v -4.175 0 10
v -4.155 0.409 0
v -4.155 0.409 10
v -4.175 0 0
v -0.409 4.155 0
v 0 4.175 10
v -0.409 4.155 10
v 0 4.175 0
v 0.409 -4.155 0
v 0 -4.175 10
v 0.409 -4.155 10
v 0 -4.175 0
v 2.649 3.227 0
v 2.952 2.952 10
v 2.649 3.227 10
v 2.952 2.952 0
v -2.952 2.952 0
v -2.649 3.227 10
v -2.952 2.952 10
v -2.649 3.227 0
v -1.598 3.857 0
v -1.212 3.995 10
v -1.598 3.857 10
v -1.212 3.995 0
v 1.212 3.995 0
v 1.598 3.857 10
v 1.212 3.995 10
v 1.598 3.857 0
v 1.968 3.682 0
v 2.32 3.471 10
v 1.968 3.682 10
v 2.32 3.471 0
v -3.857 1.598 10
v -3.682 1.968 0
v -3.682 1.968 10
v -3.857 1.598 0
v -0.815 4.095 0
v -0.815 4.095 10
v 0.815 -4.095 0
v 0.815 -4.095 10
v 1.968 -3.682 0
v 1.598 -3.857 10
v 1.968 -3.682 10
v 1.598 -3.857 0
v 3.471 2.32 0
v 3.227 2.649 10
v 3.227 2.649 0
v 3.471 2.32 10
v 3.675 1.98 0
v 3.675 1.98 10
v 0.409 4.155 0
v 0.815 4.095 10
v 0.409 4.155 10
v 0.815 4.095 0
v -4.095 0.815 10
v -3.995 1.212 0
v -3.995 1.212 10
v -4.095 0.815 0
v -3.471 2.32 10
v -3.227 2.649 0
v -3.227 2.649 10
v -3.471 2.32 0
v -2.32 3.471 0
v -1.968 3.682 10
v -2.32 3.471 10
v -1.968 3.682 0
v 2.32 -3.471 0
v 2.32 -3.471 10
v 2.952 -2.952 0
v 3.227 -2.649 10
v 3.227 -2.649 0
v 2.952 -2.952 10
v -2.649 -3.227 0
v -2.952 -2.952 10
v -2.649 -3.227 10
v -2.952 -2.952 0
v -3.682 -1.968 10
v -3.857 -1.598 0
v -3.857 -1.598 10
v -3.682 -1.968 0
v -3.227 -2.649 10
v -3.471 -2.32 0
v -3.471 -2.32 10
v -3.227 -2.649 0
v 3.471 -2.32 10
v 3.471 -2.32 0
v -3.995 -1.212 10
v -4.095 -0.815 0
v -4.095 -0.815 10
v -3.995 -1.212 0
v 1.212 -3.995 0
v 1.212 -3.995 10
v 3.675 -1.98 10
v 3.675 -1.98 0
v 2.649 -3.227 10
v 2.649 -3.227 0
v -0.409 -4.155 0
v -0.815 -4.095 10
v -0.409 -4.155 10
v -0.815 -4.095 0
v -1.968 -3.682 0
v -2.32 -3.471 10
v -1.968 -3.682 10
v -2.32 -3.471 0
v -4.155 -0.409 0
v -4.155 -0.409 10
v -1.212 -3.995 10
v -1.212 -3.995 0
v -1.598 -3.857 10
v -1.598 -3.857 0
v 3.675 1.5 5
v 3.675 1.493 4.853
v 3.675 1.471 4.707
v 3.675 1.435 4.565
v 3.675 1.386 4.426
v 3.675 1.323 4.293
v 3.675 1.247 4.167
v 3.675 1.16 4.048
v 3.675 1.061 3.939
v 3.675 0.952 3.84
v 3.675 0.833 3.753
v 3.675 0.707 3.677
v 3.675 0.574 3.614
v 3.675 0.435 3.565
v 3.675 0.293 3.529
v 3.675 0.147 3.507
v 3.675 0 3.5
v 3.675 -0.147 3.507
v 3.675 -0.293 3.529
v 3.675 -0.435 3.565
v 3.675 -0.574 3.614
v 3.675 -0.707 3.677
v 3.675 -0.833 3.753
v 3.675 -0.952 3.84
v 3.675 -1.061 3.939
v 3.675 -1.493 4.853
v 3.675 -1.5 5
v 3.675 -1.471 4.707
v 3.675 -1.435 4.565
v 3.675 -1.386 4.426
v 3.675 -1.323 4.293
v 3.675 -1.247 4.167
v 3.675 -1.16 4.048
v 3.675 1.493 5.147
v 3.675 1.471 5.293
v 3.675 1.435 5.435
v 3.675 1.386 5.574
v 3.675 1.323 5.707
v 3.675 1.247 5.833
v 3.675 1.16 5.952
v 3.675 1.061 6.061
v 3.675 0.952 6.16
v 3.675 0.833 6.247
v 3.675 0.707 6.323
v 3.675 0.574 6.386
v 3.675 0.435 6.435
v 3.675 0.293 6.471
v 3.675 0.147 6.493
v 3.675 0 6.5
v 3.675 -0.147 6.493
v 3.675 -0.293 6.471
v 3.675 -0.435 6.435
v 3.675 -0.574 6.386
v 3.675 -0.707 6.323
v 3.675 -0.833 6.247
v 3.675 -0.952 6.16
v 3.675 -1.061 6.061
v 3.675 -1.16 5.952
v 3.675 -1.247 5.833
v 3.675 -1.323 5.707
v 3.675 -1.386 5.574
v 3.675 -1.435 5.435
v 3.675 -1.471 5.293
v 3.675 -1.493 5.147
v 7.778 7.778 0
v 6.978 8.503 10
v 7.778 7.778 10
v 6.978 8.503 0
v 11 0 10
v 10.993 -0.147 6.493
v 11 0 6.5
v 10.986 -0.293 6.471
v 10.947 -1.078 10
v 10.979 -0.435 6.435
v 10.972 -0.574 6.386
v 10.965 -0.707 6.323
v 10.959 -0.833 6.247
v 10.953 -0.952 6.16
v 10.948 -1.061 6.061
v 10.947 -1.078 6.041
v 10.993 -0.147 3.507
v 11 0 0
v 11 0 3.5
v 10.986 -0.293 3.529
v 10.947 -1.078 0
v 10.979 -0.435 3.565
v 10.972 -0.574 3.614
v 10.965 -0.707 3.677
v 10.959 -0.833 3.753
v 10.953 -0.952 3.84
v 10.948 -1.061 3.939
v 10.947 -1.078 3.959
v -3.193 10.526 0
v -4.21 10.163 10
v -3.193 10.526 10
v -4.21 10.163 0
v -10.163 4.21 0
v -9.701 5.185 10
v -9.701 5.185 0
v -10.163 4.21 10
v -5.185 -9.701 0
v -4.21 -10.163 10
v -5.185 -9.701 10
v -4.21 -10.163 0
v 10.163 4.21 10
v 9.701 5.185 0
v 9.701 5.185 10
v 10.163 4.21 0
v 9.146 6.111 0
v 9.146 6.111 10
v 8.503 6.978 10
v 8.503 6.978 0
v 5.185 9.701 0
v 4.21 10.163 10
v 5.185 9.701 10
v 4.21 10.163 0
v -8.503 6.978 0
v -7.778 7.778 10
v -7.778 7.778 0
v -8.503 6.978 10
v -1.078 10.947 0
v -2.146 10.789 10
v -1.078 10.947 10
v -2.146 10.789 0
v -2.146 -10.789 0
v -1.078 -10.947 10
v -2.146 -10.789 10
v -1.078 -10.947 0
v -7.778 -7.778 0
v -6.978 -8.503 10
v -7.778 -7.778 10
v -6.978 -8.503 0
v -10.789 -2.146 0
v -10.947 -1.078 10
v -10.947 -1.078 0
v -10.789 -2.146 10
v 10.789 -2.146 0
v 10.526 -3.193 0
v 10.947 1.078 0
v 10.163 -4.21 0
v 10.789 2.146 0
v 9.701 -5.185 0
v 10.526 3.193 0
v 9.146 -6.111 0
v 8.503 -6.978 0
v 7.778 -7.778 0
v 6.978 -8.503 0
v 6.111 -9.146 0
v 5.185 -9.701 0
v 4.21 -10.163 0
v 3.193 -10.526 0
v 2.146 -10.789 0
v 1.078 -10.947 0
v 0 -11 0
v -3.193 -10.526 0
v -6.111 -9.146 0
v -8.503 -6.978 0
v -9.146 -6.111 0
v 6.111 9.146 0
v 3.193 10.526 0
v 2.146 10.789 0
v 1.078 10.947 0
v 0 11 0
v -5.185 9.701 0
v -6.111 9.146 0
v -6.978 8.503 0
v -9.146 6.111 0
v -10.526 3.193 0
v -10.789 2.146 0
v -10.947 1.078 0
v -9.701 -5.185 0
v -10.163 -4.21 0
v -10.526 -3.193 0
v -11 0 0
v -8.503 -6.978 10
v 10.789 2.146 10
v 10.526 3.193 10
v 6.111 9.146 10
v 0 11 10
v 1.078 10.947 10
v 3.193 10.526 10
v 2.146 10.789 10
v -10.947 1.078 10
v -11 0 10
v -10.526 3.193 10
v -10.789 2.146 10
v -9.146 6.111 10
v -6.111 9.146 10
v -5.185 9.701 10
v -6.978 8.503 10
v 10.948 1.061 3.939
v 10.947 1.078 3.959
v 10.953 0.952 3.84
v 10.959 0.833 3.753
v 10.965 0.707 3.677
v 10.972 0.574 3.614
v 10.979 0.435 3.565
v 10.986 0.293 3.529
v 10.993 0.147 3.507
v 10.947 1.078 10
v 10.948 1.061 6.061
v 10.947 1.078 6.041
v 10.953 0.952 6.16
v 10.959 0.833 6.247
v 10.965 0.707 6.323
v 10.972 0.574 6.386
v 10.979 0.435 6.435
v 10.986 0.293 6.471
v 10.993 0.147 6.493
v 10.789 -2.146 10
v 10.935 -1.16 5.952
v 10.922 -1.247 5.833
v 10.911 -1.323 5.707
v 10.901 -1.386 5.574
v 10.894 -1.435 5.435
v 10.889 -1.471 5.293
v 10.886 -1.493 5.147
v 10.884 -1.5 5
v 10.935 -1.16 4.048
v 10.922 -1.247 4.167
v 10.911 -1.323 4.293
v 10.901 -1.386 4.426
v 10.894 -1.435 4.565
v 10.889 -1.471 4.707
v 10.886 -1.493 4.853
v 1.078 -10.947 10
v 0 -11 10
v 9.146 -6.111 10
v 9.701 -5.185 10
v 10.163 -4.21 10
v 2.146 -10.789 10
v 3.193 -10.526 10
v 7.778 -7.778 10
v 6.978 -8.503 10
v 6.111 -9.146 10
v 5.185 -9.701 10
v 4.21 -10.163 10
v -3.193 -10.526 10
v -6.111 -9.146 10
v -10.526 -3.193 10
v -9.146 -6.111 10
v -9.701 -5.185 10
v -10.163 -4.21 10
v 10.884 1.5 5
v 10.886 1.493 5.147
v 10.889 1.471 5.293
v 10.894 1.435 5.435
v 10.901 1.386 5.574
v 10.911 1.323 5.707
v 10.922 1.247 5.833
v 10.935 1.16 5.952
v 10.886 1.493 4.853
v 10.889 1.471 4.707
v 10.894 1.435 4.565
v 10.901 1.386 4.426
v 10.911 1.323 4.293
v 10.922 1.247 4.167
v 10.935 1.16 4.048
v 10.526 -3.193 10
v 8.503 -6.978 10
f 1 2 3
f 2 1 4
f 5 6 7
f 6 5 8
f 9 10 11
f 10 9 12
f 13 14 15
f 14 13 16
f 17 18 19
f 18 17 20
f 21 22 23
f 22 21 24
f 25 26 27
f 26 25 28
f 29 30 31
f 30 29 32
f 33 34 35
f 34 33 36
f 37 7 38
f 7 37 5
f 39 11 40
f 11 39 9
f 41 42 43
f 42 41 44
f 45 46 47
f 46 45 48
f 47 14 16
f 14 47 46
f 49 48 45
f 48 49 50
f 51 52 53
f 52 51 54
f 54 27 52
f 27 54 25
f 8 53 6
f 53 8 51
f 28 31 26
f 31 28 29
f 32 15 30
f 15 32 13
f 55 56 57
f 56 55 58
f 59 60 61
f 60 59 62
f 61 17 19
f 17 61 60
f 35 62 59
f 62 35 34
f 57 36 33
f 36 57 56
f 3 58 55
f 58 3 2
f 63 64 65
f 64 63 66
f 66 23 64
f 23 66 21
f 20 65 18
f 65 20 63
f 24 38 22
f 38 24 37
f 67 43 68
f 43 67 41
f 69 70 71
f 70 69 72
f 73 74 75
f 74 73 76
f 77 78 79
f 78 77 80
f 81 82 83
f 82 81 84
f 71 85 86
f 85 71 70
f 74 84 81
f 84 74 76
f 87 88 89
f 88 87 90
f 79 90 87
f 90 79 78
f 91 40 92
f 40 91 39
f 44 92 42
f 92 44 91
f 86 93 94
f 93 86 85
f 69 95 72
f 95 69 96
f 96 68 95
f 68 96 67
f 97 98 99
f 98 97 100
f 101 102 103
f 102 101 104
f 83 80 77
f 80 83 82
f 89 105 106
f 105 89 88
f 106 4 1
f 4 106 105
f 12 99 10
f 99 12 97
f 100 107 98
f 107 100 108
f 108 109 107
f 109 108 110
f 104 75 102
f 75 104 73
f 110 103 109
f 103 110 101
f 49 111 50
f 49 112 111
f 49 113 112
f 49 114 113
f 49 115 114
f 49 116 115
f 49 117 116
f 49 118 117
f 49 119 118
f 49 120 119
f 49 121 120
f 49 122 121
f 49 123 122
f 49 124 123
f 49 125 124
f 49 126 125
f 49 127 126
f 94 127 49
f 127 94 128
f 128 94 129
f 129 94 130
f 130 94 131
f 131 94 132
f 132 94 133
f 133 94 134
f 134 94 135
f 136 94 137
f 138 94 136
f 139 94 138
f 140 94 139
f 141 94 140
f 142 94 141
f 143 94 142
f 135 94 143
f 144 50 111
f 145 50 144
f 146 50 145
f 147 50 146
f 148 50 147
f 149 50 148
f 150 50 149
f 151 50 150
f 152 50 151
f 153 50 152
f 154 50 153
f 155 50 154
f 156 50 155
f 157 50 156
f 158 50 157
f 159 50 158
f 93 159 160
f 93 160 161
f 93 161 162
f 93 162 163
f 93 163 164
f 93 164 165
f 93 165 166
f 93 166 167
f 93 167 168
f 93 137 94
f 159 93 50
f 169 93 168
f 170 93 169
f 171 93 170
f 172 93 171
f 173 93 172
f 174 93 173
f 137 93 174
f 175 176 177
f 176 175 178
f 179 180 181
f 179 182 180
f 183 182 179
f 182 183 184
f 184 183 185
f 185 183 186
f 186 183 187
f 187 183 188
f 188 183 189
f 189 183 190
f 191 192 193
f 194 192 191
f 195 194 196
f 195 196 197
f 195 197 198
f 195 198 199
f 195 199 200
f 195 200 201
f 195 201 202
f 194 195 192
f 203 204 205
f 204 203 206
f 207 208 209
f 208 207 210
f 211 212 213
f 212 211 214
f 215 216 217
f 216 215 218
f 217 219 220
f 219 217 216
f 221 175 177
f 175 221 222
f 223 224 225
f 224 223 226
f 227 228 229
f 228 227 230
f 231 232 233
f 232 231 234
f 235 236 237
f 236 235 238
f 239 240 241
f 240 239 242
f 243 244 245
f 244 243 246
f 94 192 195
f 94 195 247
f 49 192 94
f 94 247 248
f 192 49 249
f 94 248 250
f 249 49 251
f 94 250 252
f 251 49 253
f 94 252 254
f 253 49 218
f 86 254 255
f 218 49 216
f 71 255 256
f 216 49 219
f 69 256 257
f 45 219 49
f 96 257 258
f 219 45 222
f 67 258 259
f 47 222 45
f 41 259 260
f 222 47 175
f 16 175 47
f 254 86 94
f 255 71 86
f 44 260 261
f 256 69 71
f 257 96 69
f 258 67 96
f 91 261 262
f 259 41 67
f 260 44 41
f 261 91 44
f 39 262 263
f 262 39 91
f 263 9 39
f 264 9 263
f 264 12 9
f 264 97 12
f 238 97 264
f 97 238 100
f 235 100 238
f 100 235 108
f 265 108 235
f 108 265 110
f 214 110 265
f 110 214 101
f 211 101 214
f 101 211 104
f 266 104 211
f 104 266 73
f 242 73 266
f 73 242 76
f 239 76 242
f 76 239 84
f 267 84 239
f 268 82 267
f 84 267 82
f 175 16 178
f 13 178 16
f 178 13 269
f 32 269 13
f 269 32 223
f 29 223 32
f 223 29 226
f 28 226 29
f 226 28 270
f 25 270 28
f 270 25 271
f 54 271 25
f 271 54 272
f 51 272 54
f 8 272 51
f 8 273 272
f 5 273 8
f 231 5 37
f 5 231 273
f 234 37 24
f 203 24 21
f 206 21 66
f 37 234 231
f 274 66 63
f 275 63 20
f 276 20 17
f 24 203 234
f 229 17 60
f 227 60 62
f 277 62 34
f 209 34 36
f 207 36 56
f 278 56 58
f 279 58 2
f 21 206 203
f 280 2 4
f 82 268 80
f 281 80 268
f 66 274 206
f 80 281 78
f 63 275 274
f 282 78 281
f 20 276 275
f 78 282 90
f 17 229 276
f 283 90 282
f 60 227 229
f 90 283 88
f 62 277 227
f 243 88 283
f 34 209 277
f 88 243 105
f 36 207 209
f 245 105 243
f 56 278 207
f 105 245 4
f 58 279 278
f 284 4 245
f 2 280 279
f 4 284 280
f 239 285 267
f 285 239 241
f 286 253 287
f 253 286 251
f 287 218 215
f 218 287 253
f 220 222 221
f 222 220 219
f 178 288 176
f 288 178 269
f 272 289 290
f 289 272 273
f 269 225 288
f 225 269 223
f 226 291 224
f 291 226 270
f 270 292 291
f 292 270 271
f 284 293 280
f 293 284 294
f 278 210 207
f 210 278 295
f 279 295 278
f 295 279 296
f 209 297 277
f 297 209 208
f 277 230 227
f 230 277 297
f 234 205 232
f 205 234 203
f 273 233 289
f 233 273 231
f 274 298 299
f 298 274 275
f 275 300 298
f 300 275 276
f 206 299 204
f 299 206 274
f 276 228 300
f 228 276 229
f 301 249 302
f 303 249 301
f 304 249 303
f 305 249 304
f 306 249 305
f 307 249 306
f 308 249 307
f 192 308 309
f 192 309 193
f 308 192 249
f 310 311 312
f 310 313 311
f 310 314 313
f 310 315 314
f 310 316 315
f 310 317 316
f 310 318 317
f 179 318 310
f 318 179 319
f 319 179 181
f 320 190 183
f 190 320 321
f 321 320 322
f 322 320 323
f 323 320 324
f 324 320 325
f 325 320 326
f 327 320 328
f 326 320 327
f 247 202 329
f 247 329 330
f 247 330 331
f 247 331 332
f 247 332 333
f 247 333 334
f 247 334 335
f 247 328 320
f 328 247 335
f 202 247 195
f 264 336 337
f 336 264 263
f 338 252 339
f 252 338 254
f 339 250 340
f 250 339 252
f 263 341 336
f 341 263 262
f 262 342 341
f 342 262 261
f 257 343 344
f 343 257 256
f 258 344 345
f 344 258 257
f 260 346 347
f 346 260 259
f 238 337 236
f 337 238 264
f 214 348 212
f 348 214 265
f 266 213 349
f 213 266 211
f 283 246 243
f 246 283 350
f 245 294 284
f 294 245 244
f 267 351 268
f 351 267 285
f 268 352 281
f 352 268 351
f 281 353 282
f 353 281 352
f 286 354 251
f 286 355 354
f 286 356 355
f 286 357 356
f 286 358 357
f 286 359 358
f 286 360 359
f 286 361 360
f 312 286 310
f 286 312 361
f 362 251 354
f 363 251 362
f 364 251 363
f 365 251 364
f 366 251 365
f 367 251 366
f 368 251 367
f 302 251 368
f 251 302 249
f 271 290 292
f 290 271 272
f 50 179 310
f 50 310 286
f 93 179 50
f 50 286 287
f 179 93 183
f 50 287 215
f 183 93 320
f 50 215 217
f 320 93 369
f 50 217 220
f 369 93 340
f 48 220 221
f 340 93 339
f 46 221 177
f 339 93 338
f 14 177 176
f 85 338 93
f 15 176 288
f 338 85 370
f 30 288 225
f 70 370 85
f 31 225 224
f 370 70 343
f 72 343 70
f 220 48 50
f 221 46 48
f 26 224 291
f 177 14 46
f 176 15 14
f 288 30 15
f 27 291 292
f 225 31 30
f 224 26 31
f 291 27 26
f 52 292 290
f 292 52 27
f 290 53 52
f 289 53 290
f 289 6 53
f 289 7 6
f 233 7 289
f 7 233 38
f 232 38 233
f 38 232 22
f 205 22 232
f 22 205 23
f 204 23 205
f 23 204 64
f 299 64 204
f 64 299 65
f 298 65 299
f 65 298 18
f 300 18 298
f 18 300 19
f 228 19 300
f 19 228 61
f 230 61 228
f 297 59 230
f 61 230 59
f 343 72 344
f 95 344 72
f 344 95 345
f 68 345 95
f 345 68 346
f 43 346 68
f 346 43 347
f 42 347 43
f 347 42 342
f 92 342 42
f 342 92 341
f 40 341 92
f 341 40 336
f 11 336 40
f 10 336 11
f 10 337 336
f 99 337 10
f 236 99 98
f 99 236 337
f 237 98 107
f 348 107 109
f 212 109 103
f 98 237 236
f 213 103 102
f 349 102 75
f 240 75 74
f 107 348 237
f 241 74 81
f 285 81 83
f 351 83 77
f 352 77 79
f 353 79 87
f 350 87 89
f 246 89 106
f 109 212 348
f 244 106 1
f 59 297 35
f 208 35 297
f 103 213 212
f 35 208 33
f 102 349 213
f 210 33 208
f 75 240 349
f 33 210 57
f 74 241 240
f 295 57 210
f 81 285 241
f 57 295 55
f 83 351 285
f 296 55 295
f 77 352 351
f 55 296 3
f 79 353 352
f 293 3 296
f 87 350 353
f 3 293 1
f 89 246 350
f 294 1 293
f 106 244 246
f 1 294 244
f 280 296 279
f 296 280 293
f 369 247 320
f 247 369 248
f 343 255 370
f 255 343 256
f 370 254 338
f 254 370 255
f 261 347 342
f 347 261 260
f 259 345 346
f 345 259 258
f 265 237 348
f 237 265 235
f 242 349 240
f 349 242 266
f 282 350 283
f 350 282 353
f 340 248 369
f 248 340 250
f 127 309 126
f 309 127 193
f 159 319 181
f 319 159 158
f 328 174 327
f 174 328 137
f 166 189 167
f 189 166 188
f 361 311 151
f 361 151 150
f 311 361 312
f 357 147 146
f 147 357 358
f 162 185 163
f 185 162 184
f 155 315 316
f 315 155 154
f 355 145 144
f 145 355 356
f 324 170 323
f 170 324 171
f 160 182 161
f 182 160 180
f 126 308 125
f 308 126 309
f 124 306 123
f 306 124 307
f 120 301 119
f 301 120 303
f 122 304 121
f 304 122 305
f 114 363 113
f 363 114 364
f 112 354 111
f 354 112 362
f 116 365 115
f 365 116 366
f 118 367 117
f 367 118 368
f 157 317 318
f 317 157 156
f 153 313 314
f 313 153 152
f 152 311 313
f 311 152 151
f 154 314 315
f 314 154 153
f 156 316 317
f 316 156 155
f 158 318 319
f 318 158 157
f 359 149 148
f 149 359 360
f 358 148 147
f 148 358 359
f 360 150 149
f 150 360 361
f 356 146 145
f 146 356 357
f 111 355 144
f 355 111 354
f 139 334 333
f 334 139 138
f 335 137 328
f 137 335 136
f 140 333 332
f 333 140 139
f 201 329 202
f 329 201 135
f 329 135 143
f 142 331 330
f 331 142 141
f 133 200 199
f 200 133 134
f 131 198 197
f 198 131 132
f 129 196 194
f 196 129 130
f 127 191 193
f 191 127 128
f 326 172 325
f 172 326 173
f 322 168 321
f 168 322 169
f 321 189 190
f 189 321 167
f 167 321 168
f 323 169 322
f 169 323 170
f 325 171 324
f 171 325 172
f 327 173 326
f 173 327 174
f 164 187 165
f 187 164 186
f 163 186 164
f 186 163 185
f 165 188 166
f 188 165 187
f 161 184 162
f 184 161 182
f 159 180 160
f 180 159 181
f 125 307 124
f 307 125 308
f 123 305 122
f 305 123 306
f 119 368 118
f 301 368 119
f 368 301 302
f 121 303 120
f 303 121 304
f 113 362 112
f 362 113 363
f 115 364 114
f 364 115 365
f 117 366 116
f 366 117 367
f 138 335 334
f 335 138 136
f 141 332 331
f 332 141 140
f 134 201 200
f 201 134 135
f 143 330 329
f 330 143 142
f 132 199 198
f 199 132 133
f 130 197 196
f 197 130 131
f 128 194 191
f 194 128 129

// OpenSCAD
// file: parameters.scad
// =============================================================================
// Gen-CE — nightly 2026-10-14 (physics_scorer, honest magpylib watts)
// Wire-saver stator for the Gen-CD rotors: only 3.9 mm of copper (≈9 layers), magnet faces ≈6.5 mm apart, peak Bz ≈0.70 T. Uses ≈300 m of wire (≈80 m less than Gen-CD) and still clears Gen-BX; shares every rotor part, the steel, the frame rods and the bearing bridges with Gen-CD, so the two stators swap on the same machine.
// Clocking 0 deg (magnets N facing S) + D-flat keyed bore + index notch + flip-symmetric hole map.
// Windable 2-piece bobbin; turns = physics_scorer turns_fit; copper only between flanges.
// Steel back-iron: 2× Ø198 × 4.76 mm (3/16") mild-steel discs (steel_backiron_disc.dxf); magnets sit ON the steel
// (through-pockets) -> score with --back-iron. Night 2026-10-14.
// =============================================================================
topology            = "dual_rotor";

// --- Wire / winding (physics_scorer winding-fit) -------------------------------
wire_awg            = 26;
wire_od             = 0.45;     // insulated OD mm (bare 0.405)
fill_realistic      = 0.65;     // insulated-wire area / window (DENSE layered wind with a jig; scorer cap 0.65)
turns               = 288;       // = physics_scorer turns_fit (do NOT raise)
coil_former_type    = "bobbin";
coil_core_inset     = 18.10;     // radial copper build: hub = copper boundary inset by this
wind_build_axial    = 0.0;      // nothing proud of the flanges
wind_build_radial   = 0.0;

// --- Bobbin (base + lid) ---------------------------------------------------------
coil_id_r           = 64.00;    // copper boundary sector
coil_od_r           = 104.00;
span_deg            = 26.87;    // = pitch - 2*asin((wall+0.85)/coil_id_r) -> >=1.2 mm stator web
former_web          = 3.90;     // copper height between flanges (TALL copper: steel keeps Bz up)
flange_t            = 0.80;     // >= 0.8 mm FDM wall rule (tall winds push on the flanges)
wall                = 0.80;     // flange lip beyond copper
former_bare_h       = former_web + 2 * flange_t;
coil_envelope_h     = former_bare_h + 2 * wind_build_axial;
tab_w               = 7.0;
tab_len             = 7.0;
tab_h               = former_bare_h / 2;
pin_d               = 1.9;      // 1.75 mm filament locating pin
coil_mount_r        = coil_od_r + 0.2 + 4.0;
lead_y              = 1.6;
lead_slot_w         = 0.9;
lead_groove_d       = 0.6;

// --- Gap -------------------------------------------------------------------------
run_clear           = 0.50;     // rotor face -> flange
gap_spacer_h        = run_clear + wind_build_axial;
m2m                 = coil_envelope_h + 2 * run_clear;   // rotor face to rotor face (= gap_sleeve length)

// --- Stator ----------------------------------------------------------------------
coil_stations       = 12;
bay_clear           = 0.35;     // 0.35 mm: bobbin BASES print IN PLACE inside the stator bays (print-in-place gap), then pop out
stator_thick        = former_bare_h;                        // bobbins flush both faces
stator_od           = 229.0;
shaft_clear_stator  = 14.0;     // stator is static; gap sleeve OD 12 spins inside
stator_ir           = 58.85;    // ANNULAR stator: open centre (nested one-plate pack); inner rim 4.0 mm

// --- Rotor(s) --------------------------------------------------------------------
magnet_Br           = 1.43;     // N52
magnet_d_large      = 20.0;
magnet_h_large      = 5.0;      // one O20x5 per pocket
magnet_h_small      = 5.0;      // unused: no O5 pockets in this kit
halbach_magnetisation = "none";  // NO O5 assist magnets in this kit (scan: they lower the 4-pole score)
rotor_b_same_axis   = true;     // same-index magnets share one axis: N faces S across the gap
large_pocket_d      = 20.3;
small_pocket_d      = 5.3;
pocket_h            = 5.00;     // THROUGH the carrier: magnet back face sits on the steel disc (FLUSH seat: carrier = magnet height, magnet face level with the rotor face)
large_n             = 8;
R_large             = 86.0;
small_r_list        = [];       // no O5 pockets
carrier_od          = 198.0;
ring_ir             = 72.85;    // RING rotor: PLA magnet ring r ring_ir..carrier_od/2 (steel disc = structural rotor)
hub_flange_od       = 74.0;     // separate rotor_hub flange (inside the ring, flush with the ring face)
csk_d               = 6.6;      // M3 countersunk head pocket (ISO 10642 head 6.0 nominal) on the stator face
csk_depth           = 1.55;     // = (csk_d - m3_clear) / 2: 90 deg cone; head sits 0.3 mm below the face
n_seg               = 8;        // magnet-carrier ARCS per rotor (segmented carrier)
seg_deg             = 360 / n_seg;
seg_start           = -22.5;   // arc edge angle (between pocket 0 and its clamp bolt)
seg_kerf_deg        = 0.4;      // gap between neighbouring arcs on the steel
carrier_thick       = pocket_h;
hub_h               = 12.0;     // > steel_t + insert: radial set-screw clears the steel
hub_od              = 24.0;     // slim hub so the M4 brace rods fit at R~18 inside the coil ring
hub_insert_d        = 4.0;      // M3 heat-set insert, radial, bears on the D-flat
rotor_b_offset_deg  = 0.0;      // CLOCKING: magnets directly opposite
shaft_key           = "dflat";
dflat_depth         = 0.5;      // 8 mm shaft with 0.5 mm flat (7.5 across flat)
index_notch_d       = 3.0;

// --- Steel back-iron (buyable laser-cut) -------------------------------------------
steel_t             = 4.76;      // mild steel thickness (image method ignores it; sized from steel_flux.py so the return path stays well below saturation)
steel_center_hole   = 26.0;     // slips over the rotor hub (OD 24)
steel_od            = carrier_od;   // steel disc OD = rotor carrier OD

// --- Modular MAX interface ----------------------------------------------------------
shaft_bore          = 8.35;
dflat_x             = 4.0 - dflat_depth + (shaft_bore - 8.0) / 2;
bearing_d           = 21.85;
bearing_h           = 7.2;
m3_clear            = 3.5;
bolt_r_inner        = 30.0;     // M3 steel-disc clamp bolts (inside the magnet ring)
bolt_n_inner        = 4;
bolt_inner_angles   = [0, 90, 180, 270];
bolt_r_outer        = 86.0;     // second M3 steel-disc clamp ring
bolt_outer_angles   = [22.5, 67.5, 112.5, 157.5, 202.5, 247.5, 292.5, 337.5];
flange_bolt_r       = 109.5;     // frame rods: OUTSIDE the rotor OD (rotors spin inside them)
flange_bolt_n       = 4;
flange_bolt_offset  = 45.00;    // between coil stations -> never cuts a lead groove/tab
brace_r             = 18.0;
brace_d             = 4.3;      // temporary M4 jack rods (assembly only)
brace_n             = 4;
brace_angles        = [45, 135, 225, 315];          // flip-symmetric

spacer_pad_od       = 14.0;
spacer_pad_id       = m3_clear;
endbell_od          = 229.0;
endbell_thick       = 8.0;
endbell_shaft_clear = 10.0;
collar_h            = 10.0;
standoff_od         = 9.0;
frame_standoff_h    = run_clear + carrier_thick + hub_h + collar_h + 2.0;
sleeve_od           = 12.0;
plate_max_mm        = 410;

$fn = 64;
// main file
// Gen-CE — shaft collar with D-flat bore (set screw bears on the flat); print x4
include <parameters.scad>;
$fn = 64;
// D-flat keyed bore: flat faces +X (angle 0 = magnet pocket 0 = index notch)
module dflat_bore(h) {
    intersection() {
        cylinder(d=shaft_bore, h=h);
        translate([-shaft_bore, -shaft_bore, 0]) cube([shaft_bore + dflat_x, 2*shaft_bore, h]);
    }
}

od = 22; h = collar_h; set_d = 3.0;
difference() {
    cylinder(d=od, h=h);
    translate([0, 0, -0.1]) dflat_bore(h + 0.2);
    translate([0, 0, h/2]) rotate([0, 90, 0]) cylinder(d=set_d, h=od);
}
